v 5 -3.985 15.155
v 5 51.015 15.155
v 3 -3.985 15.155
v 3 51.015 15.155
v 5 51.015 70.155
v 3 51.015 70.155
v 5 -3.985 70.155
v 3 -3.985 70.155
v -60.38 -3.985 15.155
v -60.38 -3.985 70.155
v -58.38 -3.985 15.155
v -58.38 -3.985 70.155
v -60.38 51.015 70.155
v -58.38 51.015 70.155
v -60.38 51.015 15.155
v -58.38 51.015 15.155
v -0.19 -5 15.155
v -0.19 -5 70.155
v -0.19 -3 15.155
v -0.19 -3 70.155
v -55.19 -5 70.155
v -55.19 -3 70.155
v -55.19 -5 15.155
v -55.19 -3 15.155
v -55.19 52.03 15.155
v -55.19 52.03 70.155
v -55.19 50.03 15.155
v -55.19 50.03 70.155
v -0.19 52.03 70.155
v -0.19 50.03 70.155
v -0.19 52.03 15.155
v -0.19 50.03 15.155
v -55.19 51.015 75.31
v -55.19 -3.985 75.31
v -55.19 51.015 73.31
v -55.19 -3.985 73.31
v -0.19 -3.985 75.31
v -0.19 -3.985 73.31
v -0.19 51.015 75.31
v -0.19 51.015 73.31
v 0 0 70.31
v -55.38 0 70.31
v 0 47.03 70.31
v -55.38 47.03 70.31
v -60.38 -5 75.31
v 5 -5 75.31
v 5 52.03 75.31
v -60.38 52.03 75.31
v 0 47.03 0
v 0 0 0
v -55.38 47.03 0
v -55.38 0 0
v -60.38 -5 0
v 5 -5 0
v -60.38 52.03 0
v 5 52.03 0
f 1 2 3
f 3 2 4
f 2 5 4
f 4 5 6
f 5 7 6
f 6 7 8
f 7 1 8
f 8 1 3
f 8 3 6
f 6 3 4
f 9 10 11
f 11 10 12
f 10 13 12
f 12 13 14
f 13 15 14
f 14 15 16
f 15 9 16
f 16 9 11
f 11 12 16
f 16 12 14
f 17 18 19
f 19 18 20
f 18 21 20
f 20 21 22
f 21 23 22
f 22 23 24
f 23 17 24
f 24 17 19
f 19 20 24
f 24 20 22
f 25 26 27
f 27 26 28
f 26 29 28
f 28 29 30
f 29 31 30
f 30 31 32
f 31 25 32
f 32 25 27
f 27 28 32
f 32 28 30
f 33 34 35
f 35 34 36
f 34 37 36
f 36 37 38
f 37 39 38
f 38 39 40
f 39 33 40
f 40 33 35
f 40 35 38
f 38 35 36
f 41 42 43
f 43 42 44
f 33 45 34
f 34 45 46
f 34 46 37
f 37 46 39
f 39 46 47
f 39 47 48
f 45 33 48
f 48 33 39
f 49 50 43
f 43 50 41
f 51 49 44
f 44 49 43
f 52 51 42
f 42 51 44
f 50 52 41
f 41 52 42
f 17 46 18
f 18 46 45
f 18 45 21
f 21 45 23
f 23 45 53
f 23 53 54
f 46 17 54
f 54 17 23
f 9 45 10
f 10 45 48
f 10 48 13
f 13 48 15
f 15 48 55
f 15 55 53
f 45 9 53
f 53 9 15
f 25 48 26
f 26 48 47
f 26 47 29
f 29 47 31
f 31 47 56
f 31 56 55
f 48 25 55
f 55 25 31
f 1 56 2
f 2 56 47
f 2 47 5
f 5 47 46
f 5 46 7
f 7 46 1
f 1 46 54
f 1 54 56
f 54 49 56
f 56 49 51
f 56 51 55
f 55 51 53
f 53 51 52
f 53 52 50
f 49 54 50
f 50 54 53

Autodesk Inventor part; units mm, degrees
ref_plane "YZ Plane" through (0, 0, 0) normal (1, 0, 0) x (0, 1, 0)
ref_plane "XZ Plane" through (0, 0, 0) normal (0, 1, 0) x (-1, 0, 0)
ref_plane "XY Plane" through (0, 0, 0) normal (0, 0, 1) x (1, 0, 0)
sketch "Sketch3" plane through (0, 0, 0) normal (0, 0, 1) x (1, 0, 0)
  line L0 (0, 0) -> (-55.38, 0)
  line L1 (-55.38, 0) -> (-55.38, 47.03)
  line L2 (-55.38, 47.03) -> (0, 47.03)
  line L3 (0, 47.03) -> (0, 0)
  line L4 (5, -5) -> (5, 52.03)
  line L5 (5, 52.03) -> (-60.38, 52.03)
  line L6 (5, -5) -> (-60.38, -5)
  line L7 (-60.38, -5) -> (-60.38, 52.03)
  dimension "d26" = 47.03
  dimension "d27" = 55.38
extrude "Extrusion10" add sketch "Sketch3" along normal blind 70.31
sketch "Sketch12" plane through (0, 0, 70.31) normal (0, 0, 1) x (1, 0, 0)
  line L0 (5, -5) -> (5, 52.03) projected
  line L1 (-60.38, 52.03) -> (-60.38, -5) projected
  line L2 (5, -5) -> (-60.38, -5)
  line L3 (-60.38, -5) -> (-60.38, 52.03)
  line L4 (-60.38, 52.03) -> (5, 52.03)
  line L5 (5, 52.03) -> (5, -5)
  point P0 (0, 0)
extrude "Extrusion13" add sketch "Sketch12" along normal blind 5
sketch "Sketch13" plane through (0, 0, 75.31) normal (0, 0, 1) x (1, 0, 0)
  line L0 (5, -5) -> (5, 52.03) projected
  line L1 (5, -5) -> (10.19, -5) construction
  line L2 (-60.38, -5) -> (5, -5) projected
  line L3 (-0.19, -5) -> (0.825, -5) construction
  line L4 (-0.19, -3.985) -> (-55.19, -3.985)
  line L5 (-55.19, -3.985) -> (-55.19, 51.015)
  line L6 (-55.19, 51.015) -> (-0.19, 51.015)
  line L7 (-0.19, 51.015) -> (-0.19, -3.985)
  point P0 (0, 0)
  dimension "d86" = 5.19
  dimension "d88" = 1.015
  dimension "d90" = 55
  dimension "d91" = 55
extrude "Extrusion14" cut sketch "Sketch13" against normal blind 2
sketch "Sketch14" plane through (-60.38, 52.03, 0) normal (0, 1, 0) x (1, 0, 0)
  line L0 (0, -75.31) -> (65.38, -75.31) projected
  line L1 (65.38, -75.31) -> (60.19, -75.31)
  line L2 (65.38, -75.31) -> (70.57, -75.31) construction
  line L3 (60.19, -75.31) -> (60.19, -70.155)
  line L4 (60.19, -75.31) -> (65.345, -75.31) construction
  line L5 (60.19, -70.155) -> (5.19, -70.155)
  line L6 (5.19, -70.155) -> (5.19, -15.155)
  line L7 (5.19, -15.155) -> (60.19, -15.155)
  line L8 (60.19, -15.155) -> (60.19, -70.155)
  point P0 (60.38, 0)
  dimension "d94" = 5.19
  dimension "d95" = 180
  dimension "d96" = 5.155
  dimension "d97" = 90
  dimension "d98" = 55
  dimension "d99" = 55
extrude "Extrusion15" cut sketch "Sketch14" against normal blind 2
sketch "Sketch15" plane through (-60.38, -5, 0) normal (0, -1, 0) x (1, 0, 0)
  line L0 (0, 75.31) -> (5.19, 75.31)
  line L1 (65.38, 75.31) -> (0, 75.31) projected
  line L2 (60.19, 70.155) -> (5.19, 70.155) projected
  line L3 (5.19, 75.31) -> (5.19, 70.155)
  line L4 (5.19, 70.155) -> (60.19, 70.155)
  line L5 (60.19, 70.155) -> (60.19, 15.155)
  line L6 (60.19, 15.155) -> (5.19, 15.155)
  line L7 (5.19, 15.155) -> (5.19, 70.155)
  point P0 (60.38, 0)
  point P1 (60.19, 70.155)
  dimension "d104" = 5.19
  dimension "d105" = 5.155
  dimension "d106" = 90
  dimension "d107" = 55
  dimension "d108" = 55
extrude "Extrusion16" cut sketch "Sketch15" against normal blind 2
sketch "Sketch16" plane through (-60.38, -5, 0) normal (-1, 0, 0) x (0, 0, 1)
  line L0 (0, 57.03) -> (15.155, 57.03)
  line L1 (0, 57.03) -> (15.155, 57.03) construction
  line L2 (15.155, 57.03) -> (15.155, 56.015)
  line L3 (15.155, 56.015) -> (70.155, 56.015)
  line L4 (70.155, 56.015) -> (70.155, 1.015)
  line L5 (70.155, 1.015) -> (15.155, 1.015)
  line L6 (15.155, 1.015) -> (15.155, 56.015)
  point P0 (0, 5)
  dimension "d111" = 15.155
  dimension "d112" = 0
  dimension "d113" = 1.015
  dimension "d114" = 90
  dimension "d115" = 55
  dimension "d116" = 55
extrude "Extrusion17" cut sketch "Sketch16" against normal blind 2
sketch "Sketch17" plane through (5, -5, 0) normal (1, 0, 0) x (0, 0, -1)
  line L0 (0, 57.03) -> (-75.31, 57.03) projected
  line L1 (-75.31, 57.03) -> (-70.155, 57.03)
  line L2 (-75.31, 57.03) -> (-70.155, 57.03) construction
  line L3 (-70.155, 57.03) -> (-70.155, 56.015)
  line L4 (-70.155, 57.03) -> (-69.14, 57.03) construction
  line L5 (-70.155, 56.015) -> (-15.155, 56.015)
  line L6 (-15.155, 56.015) -> (-15.155, 1.015)
  line L7 (-15.155, 1.015) -> (-70.155, 1.015)
  line L8 (-70.155, 1.015) -> (-70.155, 56.015)
  point P0 (0, 5)
  dimension "d119" = 5.155
  dimension "d120" = 0
  dimension "d121" = 1.015
  dimension "d122" = 90
  dimension "d123" = 55
  dimension "d124" = 55
extrude "Extrusion18" cut sketch "Sketch17" against normal blind 2
properties part number "End-Effector"
